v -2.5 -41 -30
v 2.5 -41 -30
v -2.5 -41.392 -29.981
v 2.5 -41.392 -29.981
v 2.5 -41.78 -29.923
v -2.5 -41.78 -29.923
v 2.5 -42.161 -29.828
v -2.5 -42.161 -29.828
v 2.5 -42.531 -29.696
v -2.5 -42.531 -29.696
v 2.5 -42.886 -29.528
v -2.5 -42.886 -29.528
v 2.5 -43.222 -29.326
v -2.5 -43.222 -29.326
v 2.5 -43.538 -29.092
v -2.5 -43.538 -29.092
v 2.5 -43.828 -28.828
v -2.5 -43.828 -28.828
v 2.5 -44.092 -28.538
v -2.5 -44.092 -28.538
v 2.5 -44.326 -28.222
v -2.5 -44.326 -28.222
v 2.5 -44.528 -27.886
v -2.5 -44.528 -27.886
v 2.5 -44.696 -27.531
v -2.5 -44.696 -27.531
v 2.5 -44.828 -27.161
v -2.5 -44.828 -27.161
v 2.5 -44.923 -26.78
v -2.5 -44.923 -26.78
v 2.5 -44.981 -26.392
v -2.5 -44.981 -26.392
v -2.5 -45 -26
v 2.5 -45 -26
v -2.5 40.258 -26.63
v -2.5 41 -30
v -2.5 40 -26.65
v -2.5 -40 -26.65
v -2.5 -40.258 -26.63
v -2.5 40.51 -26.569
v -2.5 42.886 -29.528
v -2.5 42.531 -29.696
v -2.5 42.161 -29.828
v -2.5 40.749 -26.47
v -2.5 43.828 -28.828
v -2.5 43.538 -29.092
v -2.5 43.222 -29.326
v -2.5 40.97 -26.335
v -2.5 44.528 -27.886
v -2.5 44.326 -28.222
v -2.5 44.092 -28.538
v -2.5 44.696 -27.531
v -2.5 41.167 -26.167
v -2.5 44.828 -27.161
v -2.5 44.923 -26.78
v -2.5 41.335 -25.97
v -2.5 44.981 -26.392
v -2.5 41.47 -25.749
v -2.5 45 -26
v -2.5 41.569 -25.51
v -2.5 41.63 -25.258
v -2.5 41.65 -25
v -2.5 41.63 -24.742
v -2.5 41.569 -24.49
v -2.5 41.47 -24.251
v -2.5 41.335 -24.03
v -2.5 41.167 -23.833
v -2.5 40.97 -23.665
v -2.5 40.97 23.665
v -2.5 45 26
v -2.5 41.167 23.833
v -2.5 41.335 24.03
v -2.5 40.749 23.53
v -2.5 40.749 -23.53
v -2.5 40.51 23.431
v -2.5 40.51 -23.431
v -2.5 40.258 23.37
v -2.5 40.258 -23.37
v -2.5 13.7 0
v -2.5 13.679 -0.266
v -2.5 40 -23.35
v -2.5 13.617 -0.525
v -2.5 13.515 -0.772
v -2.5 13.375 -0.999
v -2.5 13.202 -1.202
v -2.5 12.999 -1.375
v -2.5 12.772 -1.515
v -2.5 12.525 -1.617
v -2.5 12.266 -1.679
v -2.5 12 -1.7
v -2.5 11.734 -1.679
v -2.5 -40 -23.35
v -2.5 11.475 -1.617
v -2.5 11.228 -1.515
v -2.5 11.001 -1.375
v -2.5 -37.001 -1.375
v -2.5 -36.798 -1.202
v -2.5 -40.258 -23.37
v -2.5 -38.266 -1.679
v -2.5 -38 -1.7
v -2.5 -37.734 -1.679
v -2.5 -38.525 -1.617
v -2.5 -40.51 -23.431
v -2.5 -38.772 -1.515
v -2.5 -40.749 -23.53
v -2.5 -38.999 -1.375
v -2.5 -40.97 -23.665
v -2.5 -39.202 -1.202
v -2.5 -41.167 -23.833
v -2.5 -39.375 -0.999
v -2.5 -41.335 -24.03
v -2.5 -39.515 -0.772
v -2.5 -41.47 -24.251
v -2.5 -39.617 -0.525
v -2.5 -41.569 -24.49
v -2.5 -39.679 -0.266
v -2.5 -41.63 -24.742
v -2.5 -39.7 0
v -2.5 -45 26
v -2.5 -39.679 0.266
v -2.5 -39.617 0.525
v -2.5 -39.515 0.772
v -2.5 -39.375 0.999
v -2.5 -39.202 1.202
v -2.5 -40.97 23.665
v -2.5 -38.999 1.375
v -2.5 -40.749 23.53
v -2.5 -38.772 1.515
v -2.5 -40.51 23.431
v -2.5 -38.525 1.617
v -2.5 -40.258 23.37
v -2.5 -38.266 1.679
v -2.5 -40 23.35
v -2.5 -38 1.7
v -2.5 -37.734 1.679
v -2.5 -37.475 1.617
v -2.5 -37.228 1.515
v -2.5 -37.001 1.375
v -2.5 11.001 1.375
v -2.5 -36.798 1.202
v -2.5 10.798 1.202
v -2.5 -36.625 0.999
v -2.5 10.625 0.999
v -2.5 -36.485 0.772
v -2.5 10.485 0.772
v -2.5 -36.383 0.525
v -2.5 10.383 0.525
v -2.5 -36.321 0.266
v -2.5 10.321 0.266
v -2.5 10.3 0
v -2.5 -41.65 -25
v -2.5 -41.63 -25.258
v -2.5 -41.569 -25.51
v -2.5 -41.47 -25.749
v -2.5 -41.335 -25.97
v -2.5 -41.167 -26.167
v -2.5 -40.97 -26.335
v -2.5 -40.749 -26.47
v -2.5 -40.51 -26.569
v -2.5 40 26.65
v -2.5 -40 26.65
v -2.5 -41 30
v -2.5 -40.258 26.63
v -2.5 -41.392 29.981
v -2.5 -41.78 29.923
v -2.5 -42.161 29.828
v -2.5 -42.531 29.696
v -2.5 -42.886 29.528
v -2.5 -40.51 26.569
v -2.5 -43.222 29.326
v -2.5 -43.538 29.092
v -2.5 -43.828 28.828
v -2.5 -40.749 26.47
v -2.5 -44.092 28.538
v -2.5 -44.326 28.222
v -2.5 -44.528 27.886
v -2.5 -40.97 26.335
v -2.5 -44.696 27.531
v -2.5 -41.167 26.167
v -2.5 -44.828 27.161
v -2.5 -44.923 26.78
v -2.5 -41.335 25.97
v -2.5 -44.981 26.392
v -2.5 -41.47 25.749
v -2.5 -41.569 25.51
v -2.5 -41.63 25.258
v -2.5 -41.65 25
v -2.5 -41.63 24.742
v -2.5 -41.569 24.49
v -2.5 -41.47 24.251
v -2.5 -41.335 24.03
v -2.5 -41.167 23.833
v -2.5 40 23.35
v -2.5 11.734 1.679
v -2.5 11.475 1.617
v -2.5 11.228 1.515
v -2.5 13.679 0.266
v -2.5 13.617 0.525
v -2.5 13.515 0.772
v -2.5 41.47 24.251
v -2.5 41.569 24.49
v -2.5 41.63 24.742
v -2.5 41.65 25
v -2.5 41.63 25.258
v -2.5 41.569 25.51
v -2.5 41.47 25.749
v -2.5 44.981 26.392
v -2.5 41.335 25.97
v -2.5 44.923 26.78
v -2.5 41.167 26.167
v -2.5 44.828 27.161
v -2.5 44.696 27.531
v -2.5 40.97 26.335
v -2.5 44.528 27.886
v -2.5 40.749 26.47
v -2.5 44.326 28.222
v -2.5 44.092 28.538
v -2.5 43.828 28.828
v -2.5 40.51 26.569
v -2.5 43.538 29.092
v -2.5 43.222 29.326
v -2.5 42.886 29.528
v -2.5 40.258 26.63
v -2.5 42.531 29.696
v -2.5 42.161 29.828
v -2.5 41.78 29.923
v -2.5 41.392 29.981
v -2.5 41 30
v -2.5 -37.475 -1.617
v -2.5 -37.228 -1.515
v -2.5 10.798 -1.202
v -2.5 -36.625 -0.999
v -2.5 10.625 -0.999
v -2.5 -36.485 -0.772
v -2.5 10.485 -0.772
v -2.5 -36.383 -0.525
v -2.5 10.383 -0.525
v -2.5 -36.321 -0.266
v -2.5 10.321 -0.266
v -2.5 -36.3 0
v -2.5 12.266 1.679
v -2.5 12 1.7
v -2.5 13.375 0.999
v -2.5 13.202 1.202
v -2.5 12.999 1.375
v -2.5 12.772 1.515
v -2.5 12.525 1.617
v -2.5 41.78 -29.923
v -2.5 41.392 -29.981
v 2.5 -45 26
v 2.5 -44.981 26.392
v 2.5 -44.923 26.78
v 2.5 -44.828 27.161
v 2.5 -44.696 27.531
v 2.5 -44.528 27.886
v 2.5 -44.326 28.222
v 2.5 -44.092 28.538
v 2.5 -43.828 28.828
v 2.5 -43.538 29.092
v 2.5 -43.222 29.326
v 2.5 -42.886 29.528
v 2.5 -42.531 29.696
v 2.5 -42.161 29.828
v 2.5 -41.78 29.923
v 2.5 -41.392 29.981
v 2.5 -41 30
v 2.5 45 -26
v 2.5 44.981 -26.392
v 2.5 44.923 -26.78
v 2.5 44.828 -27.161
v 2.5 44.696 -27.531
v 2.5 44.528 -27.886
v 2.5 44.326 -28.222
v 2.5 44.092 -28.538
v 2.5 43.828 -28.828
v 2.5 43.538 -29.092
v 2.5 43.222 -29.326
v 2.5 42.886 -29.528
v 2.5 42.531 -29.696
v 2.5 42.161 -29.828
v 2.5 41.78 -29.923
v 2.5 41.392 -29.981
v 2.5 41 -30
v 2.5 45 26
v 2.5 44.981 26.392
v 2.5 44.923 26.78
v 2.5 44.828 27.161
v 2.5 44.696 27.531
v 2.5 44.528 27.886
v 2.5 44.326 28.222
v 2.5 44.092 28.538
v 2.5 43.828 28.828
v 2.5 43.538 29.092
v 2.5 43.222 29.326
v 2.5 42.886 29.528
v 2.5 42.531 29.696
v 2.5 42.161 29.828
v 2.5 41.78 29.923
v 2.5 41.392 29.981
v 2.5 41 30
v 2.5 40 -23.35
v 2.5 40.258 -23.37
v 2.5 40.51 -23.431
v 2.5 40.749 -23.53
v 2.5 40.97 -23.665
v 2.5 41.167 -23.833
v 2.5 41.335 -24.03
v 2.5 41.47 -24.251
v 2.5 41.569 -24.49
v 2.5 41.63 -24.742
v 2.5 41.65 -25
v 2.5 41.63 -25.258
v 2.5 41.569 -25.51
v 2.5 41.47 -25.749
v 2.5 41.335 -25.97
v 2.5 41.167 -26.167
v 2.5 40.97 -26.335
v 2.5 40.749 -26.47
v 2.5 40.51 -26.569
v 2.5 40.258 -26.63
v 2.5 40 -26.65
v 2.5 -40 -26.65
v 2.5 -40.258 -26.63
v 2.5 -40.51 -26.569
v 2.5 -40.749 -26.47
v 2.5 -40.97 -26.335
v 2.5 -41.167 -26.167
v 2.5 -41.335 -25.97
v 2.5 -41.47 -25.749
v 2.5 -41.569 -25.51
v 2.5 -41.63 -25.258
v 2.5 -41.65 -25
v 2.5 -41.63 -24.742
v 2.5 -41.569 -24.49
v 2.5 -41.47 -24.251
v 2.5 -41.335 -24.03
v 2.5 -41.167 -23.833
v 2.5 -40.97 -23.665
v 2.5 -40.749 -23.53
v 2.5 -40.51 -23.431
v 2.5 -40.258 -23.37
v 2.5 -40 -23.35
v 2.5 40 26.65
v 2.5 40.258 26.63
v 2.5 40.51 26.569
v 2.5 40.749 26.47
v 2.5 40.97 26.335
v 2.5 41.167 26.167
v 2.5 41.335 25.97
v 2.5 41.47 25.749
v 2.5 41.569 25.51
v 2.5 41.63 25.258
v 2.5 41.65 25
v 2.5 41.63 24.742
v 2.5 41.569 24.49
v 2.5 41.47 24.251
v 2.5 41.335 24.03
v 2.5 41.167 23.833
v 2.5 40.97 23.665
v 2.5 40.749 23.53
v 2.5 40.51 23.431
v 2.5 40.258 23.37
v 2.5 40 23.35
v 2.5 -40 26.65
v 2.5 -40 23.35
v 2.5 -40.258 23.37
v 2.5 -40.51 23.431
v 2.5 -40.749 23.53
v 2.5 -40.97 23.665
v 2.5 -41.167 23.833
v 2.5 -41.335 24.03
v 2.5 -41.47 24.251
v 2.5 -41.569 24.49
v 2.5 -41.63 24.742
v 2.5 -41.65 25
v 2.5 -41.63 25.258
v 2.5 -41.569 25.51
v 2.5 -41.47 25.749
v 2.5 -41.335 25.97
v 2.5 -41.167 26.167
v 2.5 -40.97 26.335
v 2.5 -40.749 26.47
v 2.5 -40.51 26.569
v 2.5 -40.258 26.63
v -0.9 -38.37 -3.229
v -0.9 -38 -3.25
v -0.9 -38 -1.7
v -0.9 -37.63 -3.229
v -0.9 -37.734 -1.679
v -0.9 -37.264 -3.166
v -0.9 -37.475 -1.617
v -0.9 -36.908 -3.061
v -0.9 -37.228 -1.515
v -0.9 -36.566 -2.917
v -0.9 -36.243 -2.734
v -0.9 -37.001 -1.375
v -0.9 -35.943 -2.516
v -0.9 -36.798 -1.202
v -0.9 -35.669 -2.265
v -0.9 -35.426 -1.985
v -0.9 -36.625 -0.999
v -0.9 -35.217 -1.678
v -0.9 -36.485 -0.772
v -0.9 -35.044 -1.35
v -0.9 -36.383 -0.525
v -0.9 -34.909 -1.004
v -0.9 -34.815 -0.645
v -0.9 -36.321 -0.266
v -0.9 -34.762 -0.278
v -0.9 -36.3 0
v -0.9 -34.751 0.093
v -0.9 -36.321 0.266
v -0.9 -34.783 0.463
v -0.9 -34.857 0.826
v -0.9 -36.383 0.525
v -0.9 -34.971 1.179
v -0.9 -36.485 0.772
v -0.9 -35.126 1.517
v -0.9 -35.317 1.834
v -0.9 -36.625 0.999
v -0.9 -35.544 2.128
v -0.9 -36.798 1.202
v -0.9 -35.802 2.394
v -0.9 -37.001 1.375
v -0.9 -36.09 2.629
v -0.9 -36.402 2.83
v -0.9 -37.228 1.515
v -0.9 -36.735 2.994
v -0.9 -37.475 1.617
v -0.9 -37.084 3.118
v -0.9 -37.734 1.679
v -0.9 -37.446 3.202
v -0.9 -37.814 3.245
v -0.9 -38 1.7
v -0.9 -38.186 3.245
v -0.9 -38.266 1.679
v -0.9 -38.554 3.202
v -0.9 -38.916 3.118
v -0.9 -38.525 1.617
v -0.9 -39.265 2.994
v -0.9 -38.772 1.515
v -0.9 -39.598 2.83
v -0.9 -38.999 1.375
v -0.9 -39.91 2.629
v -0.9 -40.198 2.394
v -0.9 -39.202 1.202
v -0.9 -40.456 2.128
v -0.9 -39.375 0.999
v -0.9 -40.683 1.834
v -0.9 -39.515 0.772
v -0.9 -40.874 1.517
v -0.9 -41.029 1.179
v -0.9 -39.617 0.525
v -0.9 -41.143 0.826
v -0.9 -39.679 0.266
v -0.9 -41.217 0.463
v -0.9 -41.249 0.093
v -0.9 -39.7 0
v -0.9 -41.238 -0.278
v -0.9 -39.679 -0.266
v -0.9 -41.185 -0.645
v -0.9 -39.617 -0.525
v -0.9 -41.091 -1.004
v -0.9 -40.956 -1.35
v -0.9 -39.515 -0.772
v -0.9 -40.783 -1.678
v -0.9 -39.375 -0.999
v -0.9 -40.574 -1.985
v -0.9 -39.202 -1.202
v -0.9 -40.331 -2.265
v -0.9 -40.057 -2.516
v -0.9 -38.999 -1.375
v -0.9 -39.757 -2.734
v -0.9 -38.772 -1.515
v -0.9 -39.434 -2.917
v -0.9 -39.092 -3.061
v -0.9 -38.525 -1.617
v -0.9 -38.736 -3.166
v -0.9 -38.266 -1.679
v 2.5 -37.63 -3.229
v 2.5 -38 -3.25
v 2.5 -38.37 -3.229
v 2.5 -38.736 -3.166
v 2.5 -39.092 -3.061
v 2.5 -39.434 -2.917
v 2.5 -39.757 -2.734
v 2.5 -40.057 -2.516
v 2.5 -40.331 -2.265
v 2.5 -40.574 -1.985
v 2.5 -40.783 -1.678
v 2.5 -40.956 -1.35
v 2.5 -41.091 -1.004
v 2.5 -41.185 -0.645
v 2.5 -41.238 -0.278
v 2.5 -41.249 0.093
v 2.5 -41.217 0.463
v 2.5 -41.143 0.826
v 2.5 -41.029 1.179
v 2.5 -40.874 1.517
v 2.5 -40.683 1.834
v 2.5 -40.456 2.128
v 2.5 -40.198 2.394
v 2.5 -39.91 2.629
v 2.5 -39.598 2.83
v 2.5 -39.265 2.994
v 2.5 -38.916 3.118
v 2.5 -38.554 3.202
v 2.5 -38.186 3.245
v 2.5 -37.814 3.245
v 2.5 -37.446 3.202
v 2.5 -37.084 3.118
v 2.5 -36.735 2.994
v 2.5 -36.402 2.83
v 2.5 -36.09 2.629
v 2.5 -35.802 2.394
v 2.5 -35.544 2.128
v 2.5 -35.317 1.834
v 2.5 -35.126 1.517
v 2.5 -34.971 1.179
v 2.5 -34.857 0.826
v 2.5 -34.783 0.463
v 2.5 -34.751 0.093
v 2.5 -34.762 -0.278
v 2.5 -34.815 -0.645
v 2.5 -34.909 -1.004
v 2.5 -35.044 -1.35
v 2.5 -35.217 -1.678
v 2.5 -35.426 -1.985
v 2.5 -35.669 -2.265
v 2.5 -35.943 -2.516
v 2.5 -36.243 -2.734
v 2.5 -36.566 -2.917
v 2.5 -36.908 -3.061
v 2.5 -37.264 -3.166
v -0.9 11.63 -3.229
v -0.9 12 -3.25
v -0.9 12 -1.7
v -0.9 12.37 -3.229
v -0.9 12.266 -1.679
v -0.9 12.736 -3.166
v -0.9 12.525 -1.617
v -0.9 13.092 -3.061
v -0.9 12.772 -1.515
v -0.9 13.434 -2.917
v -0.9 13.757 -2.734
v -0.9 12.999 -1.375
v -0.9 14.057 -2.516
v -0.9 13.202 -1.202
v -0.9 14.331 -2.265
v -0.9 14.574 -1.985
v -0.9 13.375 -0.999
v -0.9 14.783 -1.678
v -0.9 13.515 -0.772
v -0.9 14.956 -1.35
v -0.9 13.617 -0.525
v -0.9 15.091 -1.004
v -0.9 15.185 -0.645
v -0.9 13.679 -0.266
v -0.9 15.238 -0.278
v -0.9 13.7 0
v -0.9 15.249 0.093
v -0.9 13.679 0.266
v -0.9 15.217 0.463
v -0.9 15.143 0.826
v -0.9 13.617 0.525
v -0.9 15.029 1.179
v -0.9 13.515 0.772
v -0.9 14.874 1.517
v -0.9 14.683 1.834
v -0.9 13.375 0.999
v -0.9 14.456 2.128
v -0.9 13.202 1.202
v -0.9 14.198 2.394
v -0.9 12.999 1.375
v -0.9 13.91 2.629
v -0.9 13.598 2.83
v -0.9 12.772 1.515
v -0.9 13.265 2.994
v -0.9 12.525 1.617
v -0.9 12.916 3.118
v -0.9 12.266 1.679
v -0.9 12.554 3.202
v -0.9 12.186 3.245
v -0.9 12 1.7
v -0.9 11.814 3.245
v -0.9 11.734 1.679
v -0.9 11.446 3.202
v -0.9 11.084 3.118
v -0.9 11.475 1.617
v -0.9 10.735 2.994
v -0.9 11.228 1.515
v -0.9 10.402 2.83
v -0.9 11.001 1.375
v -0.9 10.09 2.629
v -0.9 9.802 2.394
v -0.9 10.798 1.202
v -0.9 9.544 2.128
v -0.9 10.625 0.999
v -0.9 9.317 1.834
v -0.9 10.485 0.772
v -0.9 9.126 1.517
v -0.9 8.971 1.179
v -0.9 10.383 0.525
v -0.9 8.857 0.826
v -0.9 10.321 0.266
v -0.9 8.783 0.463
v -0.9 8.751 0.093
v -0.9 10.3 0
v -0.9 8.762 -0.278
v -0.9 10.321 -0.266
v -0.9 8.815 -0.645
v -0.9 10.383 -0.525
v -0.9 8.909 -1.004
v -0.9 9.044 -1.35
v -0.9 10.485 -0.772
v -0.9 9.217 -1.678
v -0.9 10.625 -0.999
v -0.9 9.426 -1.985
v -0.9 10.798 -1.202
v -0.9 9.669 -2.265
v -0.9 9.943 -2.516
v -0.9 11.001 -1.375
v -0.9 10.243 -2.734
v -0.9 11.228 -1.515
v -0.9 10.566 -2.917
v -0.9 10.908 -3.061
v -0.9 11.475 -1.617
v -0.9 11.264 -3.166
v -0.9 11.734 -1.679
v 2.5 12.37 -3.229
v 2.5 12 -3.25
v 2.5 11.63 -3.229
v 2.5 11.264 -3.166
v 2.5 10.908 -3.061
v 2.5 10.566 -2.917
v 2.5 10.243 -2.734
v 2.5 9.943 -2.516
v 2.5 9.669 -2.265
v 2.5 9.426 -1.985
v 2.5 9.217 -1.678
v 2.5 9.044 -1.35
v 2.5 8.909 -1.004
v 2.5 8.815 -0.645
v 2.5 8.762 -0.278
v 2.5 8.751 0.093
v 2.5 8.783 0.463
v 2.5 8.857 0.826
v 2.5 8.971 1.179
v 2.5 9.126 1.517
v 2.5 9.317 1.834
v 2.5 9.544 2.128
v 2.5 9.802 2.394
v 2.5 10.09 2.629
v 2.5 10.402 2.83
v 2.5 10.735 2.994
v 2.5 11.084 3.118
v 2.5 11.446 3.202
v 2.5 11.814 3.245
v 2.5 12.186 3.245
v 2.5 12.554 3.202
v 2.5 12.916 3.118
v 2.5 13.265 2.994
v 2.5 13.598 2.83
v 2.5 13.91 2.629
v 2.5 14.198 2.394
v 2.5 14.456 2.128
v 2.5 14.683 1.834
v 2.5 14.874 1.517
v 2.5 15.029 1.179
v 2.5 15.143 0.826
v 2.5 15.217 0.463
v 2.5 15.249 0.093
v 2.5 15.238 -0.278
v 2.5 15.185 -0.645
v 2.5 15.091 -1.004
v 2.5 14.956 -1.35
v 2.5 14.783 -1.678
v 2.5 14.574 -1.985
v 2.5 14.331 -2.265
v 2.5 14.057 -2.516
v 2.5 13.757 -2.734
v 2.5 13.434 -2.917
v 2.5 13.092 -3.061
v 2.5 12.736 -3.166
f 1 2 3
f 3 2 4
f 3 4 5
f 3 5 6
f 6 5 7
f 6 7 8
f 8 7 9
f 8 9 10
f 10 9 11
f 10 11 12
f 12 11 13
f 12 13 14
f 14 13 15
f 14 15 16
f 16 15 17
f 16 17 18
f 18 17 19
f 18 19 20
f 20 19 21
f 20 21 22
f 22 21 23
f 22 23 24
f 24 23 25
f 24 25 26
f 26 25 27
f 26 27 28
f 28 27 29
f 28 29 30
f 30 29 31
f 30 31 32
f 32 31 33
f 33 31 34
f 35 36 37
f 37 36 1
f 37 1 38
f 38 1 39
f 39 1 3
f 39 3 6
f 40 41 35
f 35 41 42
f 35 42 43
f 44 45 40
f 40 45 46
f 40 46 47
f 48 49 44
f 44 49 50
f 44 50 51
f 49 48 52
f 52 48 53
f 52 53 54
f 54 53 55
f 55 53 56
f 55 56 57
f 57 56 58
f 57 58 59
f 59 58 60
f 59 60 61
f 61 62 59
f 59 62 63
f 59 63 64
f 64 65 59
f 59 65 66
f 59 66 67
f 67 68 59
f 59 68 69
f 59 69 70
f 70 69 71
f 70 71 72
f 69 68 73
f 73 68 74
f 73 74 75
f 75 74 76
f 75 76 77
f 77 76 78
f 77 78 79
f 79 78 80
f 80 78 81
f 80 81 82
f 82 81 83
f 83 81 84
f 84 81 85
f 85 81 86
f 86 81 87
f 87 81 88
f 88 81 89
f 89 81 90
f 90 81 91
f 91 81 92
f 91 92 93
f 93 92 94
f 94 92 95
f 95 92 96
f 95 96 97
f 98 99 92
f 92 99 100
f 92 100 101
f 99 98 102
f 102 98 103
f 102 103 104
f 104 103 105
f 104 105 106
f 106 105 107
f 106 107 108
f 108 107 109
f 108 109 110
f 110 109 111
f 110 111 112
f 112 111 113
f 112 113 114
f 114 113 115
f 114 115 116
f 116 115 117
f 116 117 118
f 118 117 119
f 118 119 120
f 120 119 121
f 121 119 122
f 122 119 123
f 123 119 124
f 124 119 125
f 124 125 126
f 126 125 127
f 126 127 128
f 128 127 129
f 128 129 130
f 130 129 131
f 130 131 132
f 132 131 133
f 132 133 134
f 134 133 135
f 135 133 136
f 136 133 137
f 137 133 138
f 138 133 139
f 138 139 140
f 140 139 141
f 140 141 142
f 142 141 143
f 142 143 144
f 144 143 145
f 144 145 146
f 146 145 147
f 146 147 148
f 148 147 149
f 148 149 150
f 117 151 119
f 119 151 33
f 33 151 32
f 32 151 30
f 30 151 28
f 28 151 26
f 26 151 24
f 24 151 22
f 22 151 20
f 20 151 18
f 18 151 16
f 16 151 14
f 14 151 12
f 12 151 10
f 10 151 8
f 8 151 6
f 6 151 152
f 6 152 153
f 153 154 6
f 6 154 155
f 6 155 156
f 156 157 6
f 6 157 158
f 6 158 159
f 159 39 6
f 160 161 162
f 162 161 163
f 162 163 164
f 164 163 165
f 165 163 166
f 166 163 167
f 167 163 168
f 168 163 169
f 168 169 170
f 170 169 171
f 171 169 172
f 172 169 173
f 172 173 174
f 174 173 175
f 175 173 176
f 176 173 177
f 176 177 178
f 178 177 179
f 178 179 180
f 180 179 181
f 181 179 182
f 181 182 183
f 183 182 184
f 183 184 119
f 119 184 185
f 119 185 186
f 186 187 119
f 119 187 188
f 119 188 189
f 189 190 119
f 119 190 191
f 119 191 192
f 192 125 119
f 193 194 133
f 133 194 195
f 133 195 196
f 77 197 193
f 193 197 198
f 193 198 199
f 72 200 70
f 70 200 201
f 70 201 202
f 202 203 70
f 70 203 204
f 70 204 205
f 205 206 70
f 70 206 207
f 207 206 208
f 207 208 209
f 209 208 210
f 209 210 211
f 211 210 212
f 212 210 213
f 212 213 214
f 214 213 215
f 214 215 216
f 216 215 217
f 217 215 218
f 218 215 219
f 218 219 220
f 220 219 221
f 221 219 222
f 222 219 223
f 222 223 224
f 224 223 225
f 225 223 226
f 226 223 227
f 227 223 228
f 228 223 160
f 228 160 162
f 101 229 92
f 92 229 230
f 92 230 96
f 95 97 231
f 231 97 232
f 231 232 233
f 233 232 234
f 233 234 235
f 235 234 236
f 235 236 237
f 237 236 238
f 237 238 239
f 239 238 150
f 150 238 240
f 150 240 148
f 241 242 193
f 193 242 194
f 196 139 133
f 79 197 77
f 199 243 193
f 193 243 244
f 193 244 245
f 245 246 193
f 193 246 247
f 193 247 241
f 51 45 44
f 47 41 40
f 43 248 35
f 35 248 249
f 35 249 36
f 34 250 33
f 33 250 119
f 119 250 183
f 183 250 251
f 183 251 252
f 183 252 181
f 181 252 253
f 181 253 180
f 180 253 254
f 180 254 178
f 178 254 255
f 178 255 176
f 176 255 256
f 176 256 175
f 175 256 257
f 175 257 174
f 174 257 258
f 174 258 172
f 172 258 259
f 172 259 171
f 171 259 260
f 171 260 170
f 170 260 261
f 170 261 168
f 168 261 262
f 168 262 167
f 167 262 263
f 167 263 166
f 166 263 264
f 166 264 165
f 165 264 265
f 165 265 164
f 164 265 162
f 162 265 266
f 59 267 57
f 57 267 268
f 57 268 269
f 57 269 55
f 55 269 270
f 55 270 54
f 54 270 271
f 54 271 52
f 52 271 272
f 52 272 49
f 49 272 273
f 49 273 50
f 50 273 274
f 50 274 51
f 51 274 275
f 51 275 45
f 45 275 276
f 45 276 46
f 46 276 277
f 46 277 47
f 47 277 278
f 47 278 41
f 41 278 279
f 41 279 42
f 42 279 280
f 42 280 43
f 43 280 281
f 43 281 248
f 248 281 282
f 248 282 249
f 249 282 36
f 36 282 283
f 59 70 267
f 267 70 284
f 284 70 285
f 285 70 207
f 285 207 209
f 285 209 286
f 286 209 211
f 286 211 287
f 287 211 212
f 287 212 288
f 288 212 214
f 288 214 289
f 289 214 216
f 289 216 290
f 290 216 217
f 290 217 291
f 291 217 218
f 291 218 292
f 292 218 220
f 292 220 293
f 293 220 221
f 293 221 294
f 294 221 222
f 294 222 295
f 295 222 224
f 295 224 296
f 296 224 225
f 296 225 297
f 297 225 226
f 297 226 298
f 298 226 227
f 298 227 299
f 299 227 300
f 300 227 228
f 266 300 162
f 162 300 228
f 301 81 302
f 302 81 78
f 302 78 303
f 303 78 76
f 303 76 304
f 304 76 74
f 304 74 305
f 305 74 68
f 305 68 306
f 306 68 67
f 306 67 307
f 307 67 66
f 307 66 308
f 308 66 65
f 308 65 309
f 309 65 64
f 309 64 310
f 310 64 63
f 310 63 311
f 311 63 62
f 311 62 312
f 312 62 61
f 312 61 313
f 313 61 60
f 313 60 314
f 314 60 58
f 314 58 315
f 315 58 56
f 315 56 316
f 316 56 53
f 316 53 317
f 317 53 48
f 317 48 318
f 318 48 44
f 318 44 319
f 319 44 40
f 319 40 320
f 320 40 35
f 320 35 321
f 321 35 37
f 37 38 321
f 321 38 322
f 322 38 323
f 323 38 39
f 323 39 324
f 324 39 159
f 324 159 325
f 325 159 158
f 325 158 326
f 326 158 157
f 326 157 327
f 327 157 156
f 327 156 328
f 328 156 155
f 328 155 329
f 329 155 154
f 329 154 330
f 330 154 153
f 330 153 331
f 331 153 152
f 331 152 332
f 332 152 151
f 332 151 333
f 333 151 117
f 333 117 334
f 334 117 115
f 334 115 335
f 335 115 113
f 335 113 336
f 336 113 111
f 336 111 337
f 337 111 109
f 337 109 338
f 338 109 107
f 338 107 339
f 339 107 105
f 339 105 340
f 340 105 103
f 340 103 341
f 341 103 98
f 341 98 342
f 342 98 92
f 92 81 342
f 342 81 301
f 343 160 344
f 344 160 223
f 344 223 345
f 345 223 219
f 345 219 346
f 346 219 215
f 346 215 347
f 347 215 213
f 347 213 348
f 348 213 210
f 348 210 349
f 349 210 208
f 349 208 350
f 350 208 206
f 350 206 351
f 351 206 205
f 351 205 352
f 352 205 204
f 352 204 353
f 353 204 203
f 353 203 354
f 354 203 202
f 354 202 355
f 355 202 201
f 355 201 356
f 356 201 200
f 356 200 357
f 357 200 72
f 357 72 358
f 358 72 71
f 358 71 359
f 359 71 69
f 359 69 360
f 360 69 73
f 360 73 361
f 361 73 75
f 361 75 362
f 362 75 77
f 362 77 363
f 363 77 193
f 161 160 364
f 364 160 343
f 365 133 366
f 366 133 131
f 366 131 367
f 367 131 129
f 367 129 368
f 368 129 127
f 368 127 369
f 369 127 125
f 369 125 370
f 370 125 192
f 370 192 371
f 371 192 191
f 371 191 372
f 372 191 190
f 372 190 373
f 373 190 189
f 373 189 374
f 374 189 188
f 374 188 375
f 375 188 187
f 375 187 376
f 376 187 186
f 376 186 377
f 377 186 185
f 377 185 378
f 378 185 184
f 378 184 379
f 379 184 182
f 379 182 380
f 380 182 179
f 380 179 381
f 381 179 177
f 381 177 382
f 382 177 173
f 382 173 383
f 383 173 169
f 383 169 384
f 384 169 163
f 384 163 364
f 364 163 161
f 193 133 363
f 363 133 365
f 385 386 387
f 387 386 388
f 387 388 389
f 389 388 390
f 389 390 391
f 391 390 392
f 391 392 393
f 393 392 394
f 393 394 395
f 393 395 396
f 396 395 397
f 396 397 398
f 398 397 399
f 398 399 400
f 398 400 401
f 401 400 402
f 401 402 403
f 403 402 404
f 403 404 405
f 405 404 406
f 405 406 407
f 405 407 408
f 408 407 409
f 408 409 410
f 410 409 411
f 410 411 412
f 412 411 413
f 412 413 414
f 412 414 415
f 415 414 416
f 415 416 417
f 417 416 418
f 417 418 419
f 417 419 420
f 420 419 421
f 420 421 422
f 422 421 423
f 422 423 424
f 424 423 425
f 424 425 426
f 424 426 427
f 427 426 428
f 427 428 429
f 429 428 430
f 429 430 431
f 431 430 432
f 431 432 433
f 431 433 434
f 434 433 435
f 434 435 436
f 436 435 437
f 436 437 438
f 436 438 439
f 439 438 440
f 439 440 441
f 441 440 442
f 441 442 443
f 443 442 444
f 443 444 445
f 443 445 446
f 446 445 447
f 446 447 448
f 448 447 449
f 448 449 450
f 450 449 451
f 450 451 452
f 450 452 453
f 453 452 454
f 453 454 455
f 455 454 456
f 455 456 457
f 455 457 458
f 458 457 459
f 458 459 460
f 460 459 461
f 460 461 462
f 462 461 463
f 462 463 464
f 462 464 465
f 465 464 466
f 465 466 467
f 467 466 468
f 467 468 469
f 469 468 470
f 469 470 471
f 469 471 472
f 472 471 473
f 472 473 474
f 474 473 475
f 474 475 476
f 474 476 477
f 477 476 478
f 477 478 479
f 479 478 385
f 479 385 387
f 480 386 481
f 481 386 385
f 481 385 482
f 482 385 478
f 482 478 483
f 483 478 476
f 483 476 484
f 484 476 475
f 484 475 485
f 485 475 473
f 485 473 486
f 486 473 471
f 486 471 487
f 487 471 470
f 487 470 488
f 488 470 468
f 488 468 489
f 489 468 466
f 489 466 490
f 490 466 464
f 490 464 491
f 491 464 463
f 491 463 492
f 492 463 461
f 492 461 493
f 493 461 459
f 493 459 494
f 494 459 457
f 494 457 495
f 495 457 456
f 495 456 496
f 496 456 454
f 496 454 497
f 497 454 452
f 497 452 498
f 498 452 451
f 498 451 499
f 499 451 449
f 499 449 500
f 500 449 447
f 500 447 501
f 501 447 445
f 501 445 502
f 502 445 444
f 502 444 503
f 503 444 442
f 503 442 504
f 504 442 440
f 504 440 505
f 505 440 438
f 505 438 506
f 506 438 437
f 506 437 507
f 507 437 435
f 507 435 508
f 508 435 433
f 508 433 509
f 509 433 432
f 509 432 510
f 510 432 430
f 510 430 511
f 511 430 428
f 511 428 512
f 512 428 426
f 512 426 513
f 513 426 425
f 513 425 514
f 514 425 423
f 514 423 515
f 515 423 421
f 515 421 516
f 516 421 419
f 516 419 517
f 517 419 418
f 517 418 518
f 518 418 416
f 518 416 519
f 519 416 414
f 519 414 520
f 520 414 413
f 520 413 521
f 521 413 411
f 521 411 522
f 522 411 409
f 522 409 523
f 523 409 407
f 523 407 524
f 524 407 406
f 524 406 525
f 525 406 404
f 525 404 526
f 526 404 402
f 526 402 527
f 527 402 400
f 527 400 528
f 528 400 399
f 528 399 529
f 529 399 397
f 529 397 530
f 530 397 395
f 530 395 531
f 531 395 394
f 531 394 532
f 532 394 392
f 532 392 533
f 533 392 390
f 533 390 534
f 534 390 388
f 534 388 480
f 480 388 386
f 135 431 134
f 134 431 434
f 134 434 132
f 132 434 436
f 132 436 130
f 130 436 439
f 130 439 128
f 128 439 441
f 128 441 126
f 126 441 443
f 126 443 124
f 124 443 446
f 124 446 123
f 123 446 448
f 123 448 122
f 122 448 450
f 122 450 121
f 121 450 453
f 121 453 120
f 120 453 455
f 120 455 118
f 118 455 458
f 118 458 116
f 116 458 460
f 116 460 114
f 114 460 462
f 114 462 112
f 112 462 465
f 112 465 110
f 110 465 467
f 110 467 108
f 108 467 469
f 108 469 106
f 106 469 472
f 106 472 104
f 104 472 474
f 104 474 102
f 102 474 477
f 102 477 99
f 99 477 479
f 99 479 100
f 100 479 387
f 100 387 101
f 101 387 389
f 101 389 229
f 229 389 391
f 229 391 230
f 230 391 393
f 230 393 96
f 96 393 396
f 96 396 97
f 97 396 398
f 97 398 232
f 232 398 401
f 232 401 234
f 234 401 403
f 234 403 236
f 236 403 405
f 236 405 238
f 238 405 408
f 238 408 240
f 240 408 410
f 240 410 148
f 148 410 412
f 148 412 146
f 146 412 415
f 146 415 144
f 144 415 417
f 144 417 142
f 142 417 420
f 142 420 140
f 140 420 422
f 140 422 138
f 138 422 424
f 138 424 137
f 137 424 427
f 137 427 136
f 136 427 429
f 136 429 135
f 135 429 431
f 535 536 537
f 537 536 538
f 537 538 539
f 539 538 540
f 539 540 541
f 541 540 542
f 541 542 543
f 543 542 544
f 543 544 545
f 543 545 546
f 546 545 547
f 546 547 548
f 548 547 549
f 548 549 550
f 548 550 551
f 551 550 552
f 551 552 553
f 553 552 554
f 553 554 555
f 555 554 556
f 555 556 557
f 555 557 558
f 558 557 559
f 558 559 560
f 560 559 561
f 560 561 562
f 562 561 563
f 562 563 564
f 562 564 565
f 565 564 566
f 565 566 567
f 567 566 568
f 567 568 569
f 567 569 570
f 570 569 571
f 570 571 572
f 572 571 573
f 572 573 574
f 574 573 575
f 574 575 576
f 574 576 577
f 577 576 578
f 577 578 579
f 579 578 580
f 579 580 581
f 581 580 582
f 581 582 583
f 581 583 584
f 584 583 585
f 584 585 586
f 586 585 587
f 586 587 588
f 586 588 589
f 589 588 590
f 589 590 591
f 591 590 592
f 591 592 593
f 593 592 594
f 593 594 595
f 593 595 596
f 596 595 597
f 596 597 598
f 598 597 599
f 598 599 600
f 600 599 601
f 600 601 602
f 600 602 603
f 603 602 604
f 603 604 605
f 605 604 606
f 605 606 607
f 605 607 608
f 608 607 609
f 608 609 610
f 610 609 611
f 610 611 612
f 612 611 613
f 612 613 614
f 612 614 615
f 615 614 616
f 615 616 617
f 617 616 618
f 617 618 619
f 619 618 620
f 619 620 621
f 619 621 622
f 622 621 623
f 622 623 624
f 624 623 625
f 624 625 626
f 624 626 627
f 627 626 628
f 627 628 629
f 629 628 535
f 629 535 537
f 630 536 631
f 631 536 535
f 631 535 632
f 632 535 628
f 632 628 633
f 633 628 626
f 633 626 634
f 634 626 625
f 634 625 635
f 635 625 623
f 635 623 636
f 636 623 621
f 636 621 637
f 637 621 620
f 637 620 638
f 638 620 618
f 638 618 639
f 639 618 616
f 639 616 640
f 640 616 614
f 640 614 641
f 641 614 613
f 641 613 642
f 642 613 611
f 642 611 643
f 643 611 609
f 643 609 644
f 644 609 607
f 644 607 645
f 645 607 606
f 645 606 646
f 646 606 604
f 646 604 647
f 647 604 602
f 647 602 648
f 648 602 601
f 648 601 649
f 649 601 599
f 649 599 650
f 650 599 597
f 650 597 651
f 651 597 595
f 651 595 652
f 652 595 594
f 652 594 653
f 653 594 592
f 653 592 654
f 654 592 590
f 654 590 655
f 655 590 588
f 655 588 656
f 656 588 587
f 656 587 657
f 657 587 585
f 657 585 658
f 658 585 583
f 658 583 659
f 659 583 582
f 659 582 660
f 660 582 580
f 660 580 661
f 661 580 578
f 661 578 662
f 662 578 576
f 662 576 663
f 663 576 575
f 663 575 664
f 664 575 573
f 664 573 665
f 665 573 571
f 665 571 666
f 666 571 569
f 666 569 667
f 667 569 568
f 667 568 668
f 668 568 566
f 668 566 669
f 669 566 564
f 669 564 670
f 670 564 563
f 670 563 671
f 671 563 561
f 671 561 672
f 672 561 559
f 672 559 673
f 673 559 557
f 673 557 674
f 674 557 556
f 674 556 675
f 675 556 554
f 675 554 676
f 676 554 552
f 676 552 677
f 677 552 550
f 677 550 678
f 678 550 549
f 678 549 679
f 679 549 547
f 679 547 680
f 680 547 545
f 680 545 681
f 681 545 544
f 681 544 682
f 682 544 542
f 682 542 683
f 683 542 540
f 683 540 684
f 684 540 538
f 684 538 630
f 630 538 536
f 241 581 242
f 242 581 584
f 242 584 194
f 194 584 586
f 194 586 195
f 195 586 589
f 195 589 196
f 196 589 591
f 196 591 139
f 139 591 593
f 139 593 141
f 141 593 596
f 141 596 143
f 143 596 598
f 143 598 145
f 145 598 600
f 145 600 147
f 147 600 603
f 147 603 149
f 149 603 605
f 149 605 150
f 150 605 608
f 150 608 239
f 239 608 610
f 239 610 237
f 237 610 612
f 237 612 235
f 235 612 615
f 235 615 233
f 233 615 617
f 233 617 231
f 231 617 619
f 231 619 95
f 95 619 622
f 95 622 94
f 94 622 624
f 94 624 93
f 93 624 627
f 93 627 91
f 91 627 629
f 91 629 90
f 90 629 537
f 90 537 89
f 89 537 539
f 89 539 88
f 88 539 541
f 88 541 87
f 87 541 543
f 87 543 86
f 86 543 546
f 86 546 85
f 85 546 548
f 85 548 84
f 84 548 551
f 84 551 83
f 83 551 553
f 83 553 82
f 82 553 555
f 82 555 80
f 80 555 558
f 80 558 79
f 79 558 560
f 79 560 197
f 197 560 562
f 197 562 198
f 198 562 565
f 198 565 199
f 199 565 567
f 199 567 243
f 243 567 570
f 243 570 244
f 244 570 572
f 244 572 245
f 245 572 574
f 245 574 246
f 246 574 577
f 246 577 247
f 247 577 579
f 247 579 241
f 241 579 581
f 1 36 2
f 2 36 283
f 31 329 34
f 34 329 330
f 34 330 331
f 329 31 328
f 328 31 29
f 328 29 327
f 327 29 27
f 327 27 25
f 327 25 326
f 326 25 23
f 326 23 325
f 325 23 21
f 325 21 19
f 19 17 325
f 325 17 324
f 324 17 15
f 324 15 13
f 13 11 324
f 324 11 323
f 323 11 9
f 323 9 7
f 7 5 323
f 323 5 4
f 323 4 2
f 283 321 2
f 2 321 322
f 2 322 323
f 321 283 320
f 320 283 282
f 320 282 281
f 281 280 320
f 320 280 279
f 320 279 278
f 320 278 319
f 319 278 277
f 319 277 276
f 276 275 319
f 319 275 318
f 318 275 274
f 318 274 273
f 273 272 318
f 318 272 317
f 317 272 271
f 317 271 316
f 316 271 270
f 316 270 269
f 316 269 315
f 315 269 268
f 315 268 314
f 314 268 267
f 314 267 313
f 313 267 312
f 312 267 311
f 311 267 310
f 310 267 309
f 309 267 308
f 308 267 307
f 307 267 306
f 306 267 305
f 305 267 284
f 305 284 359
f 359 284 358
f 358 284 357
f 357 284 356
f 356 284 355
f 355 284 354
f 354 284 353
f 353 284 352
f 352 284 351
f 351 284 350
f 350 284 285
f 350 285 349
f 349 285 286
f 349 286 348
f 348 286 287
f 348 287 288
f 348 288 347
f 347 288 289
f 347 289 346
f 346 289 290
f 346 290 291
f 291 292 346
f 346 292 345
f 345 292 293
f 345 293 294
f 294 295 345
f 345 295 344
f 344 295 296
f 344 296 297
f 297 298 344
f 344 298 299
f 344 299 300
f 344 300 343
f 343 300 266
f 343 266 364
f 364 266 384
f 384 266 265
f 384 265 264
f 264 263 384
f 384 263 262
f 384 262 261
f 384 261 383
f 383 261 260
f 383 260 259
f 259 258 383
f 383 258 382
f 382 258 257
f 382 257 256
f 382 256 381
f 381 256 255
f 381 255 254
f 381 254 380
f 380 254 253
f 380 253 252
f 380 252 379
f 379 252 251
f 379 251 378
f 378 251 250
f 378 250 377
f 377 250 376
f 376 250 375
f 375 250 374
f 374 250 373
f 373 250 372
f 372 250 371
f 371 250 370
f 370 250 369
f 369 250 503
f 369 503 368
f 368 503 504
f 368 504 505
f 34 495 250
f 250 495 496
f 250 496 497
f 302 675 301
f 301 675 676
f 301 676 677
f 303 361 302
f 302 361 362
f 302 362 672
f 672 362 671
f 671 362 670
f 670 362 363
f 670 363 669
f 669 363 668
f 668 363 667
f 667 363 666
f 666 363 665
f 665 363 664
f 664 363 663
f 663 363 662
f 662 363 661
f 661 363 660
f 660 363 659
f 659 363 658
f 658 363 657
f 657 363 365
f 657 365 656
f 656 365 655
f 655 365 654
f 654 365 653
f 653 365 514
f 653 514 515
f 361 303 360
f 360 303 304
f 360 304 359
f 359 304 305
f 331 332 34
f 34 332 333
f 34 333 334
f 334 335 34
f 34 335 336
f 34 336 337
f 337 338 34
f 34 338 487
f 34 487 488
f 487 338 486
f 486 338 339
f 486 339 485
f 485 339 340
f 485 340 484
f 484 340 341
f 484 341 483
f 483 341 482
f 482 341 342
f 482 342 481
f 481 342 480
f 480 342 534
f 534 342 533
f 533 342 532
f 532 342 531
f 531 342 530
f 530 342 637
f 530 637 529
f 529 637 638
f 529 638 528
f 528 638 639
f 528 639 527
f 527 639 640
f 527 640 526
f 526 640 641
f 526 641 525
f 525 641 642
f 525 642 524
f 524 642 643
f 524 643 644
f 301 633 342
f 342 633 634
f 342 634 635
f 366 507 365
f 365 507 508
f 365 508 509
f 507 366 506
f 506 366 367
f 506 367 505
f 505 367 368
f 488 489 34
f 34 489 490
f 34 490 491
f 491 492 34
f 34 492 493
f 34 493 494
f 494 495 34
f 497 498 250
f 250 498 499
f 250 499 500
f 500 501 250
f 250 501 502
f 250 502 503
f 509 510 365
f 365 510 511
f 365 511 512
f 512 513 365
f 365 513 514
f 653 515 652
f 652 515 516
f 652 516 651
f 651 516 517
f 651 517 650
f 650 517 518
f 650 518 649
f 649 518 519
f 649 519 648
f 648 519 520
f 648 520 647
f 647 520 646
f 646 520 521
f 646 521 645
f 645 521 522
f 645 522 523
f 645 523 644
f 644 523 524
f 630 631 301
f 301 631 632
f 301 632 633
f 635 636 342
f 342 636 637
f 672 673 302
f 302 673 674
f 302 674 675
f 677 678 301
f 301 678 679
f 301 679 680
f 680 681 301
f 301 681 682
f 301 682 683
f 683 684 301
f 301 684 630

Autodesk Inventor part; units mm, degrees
ref_plane "YZ Plane" through (0, 0, 0) normal (1, 0, 0) x (0, 1, 0)
ref_plane "XZ Plane" through (0, 0, 0) normal (0, 1, 0) x (-1, 0, 0)
ref_plane "XY Plane" through (0, 0, 0) normal (0, 0, 1) x (1, 0, 0)
sketch "Skizze1" plane through (0, 0, 0) normal (1, 0, 0) x (0, 1, 0)
  line L0 (-63, 0) -> (63, 0)
  line L1 (0, 42) -> (0, -42)
  line L2 (-45, 30) -> (45, 30)
  line L3 (45, 30) -> (45, -30)
  line L4 (45, -30) -> (-45, -30)
  line L5 (-45, -30) -> (-45, 30)
  line L6 (-45, 30) -> (45, -30) construction
  line L7 (45, 30) -> (-45, -30) construction
  point P0 (0, 0)
  dimension "d21" = 90
  dimension "d22" = 60
extrude "Extrusion1" add sketch "Skizze1" along normal mid plane 5
sketch "Skizze2" plane through (2.5, 0, 0) normal (1, 0, 0) x (0, 0, -1)
  line L0 (-42, 0) -> (42, 0)
  line L1 (0, -63) -> (0, 63)
  line L2 (-30, -45) -> (30, -45)
  point P0 (0, 0)
  point P1 (0, 12)
  point P2 (0, -38)
  dimension "d23" = 50
  dimension "d24" = 7
hole "Bohrung1" at (2.5, -38, 0) at (2.5, 12, 0) direction (-1, 0, 0) diameter 3.4 end through all counterbore diameter 6.5 counterbore depth 3.4
sketch "Skizze3" plane through (2.5, 0, 0) normal (1, 0, 0) x (0, 0, -1)
  line L0 (0, -63) -> (0, 63)
  line L1 (-42, 0) -> (42, 0)
  line L2 (-25, -40) -> (-25, 40) construction
  line L3 (-23.35, -40) -> (-23.35, 40)
  line L4 (-26.65, 40) -> (-26.65, -40)
  arc A0 (-26.65, -40) -> (-23.35, -40) centre (-25, -40) ccw
  arc A1 (-23.35, 40) -> (-26.65, 40) centre (-25, 40) ccw
  point P0 (0, 0)
  point P1 (-25, 0)
  point P2 (-26.65, 0)
  point P3 (-23.35, 0)
  dimension "d14" = 3.3
  dimension "d15" = 80
  dimension "d16" = 25
extrude "Extrusion2" cut sketch "Skizze3" against normal through all
mirror "Spiegeln1" about plane through (0, 0, 0) normal (0, 0, 1) of "Extrusion2"
fillet "Rundung1" radius 4 4 edges at (0, 45, 30) (0, 45, -30) (0, -45, 30) (0, -45, -30)
properties part number "24_Laserholder" material "PET-Kunststoff"
